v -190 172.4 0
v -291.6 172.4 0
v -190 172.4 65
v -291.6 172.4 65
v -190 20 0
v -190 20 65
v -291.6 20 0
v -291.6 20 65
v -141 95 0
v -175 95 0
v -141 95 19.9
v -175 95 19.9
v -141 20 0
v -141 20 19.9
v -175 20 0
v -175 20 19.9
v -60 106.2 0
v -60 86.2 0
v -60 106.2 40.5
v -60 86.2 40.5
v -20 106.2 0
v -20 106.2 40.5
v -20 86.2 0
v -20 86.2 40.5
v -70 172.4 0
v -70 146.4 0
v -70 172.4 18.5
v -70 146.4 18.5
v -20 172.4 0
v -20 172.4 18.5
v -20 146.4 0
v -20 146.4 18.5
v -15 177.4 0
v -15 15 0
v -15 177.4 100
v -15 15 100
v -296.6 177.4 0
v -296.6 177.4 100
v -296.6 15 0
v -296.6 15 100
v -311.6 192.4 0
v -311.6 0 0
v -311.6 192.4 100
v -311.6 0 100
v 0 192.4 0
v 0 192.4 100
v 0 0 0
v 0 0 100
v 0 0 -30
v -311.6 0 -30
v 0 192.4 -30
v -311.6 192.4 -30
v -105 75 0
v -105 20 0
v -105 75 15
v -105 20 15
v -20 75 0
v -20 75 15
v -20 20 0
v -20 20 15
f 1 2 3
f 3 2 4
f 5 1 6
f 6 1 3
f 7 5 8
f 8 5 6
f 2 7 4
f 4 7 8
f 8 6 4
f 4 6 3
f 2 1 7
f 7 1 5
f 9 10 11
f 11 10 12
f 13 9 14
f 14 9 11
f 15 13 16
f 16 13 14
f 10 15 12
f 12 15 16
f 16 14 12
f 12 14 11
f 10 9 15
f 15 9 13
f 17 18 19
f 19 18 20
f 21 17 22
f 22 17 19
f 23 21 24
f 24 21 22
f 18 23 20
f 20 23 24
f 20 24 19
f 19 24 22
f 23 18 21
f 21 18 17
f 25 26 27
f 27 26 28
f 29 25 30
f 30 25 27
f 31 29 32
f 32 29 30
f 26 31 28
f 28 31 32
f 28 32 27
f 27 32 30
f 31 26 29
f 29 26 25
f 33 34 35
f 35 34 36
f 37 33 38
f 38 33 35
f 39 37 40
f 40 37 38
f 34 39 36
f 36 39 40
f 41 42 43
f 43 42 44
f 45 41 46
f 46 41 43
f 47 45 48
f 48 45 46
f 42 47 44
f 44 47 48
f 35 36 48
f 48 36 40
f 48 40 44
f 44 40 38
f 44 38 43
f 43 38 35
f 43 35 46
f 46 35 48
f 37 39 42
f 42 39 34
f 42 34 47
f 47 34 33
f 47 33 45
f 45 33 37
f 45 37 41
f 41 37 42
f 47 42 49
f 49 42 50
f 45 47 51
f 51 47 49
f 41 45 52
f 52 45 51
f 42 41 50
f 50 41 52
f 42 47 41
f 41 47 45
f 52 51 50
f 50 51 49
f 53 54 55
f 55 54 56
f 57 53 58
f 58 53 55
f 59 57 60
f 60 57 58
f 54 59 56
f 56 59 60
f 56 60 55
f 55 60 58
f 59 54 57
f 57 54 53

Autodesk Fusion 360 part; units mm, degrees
sketch "parts" plane through (0, 0, 0) normal (0, 0, 1) x (1, 0, 0)
  line L0 (-291.6, 172.4) -> (-190, 172.4)
  line L1 (-190, 172.4) -> (-190, 20)
  line L2 (-291.6, 20) -> (-291.6, 172.4)
  line L3 (-60, 106.2) -> (-20, 106.2)
  line L4 (-20, 106.2) -> (-20, 86.2)
  line L5 (-20, 86.2) -> (-60, 86.2)
  line L6 (-60, 86.2) -> (-60, 106.2)
  line L7 (-70, 172.4) -> (-20, 172.4)
  line L8 (-20, 172.4) -> (-20, 146.4)
  line L9 (-20, 146.4) -> (-70, 146.4)
  line L10 (-70, 146.4) -> (-70, 172.4)
  line L11 (-296.6, 177.4) -> (-15, 177.4)
  line L12 (-15, 177.4) -> (-15, 15)
  line L13 (-15, 15) -> (-296.6, 15)
  line L14 (-296.6, 15) -> (-296.6, 177.4)
  line L15 (-311.6, 192.4) -> (0, 192.4)
  line L16 (0, 192.4) -> (0, 0)
  line L17 (0, 0) -> (-311.6, 0)
  line L18 (-311.6, 0) -> (-311.6, 192.4)
  line L19 (-175, 20) -> (-141, 20)
  line L20 (-141, 20) -> (-141, 95)
  line L21 (-141, 95) -> (-175, 95)
  line L22 (-175, 95) -> (-175, 20)
  line L23 (-105, 75) -> (-20, 75)
  line L24 (-20, 75) -> (-20, 20)
  line L25 (-20, 20) -> (-105, 20)
  line L26 (-105, 20) -> (-105, 75)
  line L27 (-291.6, 20) -> (-190, 20)
  dimension "d75" = 152.4
  dimension "d76" = 101.6
  dimension "d77" = 34
  dimension "d78" = 75
  dimension "d79" = 55
  dimension "d80" = 85
  dimension "d81" = 40
  dimension "d82" = 20
  dimension "d83" = 26
  dimension "d84" = 50
  dimension "d85" = 281.6
  dimension "d86" = 162.4
  dimension "d87" = 192.4
  dimension "d88" = 311.6
  dimension "d89" = 5
  dimension "d90" = 5
  dimension "d91" = 5
  dimension "d92" = 15
  dimension "d93" = 5
  dimension "d94" = 5
  dimension "d95" = 5
  dimension "d96" = 5
  dimension "d97" = 71.2
  dimension "d98" = 15
  dimension "d99" = 15
extrude "Extrude5" add sketch "parts" along normal blind 65 contours L0 L1 L2 L27 makes body 1
extrude "Extrude6" add sketch "parts" along normal blind 19.9 separate body contours L19 L20 L21 L22 makes body 2
extrude "Extrude7" add sketch "parts" along normal blind 40.5 separate body contours L3 L4 L5 L6 makes body 3
extrude "Extrude8" add sketch "parts" along normal blind 18.5 separate body contours L7 L8 L9 L10 makes body 4
extrude "Extrude9" add sketch "parts" along normal blind 100 separate body contours L15 L16 L17 L18 makes body 5
sketch "base" plane through (0, 0, 0) normal (0, 0, 1) x (1, 0, 0)
  line L0 (-311.6, 0) -> (0, 0)
  line L1 (0, 0) -> (0, 192.4)
  line L2 (0, 192.4) -> (-311.6, 192.4)
  line L3 (-311.6, 192.4) -> (-311.6, 0)
  point P0 (-311.6, 0)
  point P1 (0, 192.4)
extrude "Extrude10" add sketch "base" against normal blind 30 separate body makes body 6
sketch "ports" plane through (0, 0, 0) normal (1, 0, 0) x (0, 1, 0)
  line L0 (0, 0) -> (192.4, 0)
  line L1 (192.4, 0) -> (192.4, 100)
  line L2 (192.4, 100) -> (0, 100)
  line L3 (0, 100) -> (0, 0)
extrude "Extrude11" add sketch "parts" along normal blind 15 separate body contours L23 L24 L25 L26 makes body 7
